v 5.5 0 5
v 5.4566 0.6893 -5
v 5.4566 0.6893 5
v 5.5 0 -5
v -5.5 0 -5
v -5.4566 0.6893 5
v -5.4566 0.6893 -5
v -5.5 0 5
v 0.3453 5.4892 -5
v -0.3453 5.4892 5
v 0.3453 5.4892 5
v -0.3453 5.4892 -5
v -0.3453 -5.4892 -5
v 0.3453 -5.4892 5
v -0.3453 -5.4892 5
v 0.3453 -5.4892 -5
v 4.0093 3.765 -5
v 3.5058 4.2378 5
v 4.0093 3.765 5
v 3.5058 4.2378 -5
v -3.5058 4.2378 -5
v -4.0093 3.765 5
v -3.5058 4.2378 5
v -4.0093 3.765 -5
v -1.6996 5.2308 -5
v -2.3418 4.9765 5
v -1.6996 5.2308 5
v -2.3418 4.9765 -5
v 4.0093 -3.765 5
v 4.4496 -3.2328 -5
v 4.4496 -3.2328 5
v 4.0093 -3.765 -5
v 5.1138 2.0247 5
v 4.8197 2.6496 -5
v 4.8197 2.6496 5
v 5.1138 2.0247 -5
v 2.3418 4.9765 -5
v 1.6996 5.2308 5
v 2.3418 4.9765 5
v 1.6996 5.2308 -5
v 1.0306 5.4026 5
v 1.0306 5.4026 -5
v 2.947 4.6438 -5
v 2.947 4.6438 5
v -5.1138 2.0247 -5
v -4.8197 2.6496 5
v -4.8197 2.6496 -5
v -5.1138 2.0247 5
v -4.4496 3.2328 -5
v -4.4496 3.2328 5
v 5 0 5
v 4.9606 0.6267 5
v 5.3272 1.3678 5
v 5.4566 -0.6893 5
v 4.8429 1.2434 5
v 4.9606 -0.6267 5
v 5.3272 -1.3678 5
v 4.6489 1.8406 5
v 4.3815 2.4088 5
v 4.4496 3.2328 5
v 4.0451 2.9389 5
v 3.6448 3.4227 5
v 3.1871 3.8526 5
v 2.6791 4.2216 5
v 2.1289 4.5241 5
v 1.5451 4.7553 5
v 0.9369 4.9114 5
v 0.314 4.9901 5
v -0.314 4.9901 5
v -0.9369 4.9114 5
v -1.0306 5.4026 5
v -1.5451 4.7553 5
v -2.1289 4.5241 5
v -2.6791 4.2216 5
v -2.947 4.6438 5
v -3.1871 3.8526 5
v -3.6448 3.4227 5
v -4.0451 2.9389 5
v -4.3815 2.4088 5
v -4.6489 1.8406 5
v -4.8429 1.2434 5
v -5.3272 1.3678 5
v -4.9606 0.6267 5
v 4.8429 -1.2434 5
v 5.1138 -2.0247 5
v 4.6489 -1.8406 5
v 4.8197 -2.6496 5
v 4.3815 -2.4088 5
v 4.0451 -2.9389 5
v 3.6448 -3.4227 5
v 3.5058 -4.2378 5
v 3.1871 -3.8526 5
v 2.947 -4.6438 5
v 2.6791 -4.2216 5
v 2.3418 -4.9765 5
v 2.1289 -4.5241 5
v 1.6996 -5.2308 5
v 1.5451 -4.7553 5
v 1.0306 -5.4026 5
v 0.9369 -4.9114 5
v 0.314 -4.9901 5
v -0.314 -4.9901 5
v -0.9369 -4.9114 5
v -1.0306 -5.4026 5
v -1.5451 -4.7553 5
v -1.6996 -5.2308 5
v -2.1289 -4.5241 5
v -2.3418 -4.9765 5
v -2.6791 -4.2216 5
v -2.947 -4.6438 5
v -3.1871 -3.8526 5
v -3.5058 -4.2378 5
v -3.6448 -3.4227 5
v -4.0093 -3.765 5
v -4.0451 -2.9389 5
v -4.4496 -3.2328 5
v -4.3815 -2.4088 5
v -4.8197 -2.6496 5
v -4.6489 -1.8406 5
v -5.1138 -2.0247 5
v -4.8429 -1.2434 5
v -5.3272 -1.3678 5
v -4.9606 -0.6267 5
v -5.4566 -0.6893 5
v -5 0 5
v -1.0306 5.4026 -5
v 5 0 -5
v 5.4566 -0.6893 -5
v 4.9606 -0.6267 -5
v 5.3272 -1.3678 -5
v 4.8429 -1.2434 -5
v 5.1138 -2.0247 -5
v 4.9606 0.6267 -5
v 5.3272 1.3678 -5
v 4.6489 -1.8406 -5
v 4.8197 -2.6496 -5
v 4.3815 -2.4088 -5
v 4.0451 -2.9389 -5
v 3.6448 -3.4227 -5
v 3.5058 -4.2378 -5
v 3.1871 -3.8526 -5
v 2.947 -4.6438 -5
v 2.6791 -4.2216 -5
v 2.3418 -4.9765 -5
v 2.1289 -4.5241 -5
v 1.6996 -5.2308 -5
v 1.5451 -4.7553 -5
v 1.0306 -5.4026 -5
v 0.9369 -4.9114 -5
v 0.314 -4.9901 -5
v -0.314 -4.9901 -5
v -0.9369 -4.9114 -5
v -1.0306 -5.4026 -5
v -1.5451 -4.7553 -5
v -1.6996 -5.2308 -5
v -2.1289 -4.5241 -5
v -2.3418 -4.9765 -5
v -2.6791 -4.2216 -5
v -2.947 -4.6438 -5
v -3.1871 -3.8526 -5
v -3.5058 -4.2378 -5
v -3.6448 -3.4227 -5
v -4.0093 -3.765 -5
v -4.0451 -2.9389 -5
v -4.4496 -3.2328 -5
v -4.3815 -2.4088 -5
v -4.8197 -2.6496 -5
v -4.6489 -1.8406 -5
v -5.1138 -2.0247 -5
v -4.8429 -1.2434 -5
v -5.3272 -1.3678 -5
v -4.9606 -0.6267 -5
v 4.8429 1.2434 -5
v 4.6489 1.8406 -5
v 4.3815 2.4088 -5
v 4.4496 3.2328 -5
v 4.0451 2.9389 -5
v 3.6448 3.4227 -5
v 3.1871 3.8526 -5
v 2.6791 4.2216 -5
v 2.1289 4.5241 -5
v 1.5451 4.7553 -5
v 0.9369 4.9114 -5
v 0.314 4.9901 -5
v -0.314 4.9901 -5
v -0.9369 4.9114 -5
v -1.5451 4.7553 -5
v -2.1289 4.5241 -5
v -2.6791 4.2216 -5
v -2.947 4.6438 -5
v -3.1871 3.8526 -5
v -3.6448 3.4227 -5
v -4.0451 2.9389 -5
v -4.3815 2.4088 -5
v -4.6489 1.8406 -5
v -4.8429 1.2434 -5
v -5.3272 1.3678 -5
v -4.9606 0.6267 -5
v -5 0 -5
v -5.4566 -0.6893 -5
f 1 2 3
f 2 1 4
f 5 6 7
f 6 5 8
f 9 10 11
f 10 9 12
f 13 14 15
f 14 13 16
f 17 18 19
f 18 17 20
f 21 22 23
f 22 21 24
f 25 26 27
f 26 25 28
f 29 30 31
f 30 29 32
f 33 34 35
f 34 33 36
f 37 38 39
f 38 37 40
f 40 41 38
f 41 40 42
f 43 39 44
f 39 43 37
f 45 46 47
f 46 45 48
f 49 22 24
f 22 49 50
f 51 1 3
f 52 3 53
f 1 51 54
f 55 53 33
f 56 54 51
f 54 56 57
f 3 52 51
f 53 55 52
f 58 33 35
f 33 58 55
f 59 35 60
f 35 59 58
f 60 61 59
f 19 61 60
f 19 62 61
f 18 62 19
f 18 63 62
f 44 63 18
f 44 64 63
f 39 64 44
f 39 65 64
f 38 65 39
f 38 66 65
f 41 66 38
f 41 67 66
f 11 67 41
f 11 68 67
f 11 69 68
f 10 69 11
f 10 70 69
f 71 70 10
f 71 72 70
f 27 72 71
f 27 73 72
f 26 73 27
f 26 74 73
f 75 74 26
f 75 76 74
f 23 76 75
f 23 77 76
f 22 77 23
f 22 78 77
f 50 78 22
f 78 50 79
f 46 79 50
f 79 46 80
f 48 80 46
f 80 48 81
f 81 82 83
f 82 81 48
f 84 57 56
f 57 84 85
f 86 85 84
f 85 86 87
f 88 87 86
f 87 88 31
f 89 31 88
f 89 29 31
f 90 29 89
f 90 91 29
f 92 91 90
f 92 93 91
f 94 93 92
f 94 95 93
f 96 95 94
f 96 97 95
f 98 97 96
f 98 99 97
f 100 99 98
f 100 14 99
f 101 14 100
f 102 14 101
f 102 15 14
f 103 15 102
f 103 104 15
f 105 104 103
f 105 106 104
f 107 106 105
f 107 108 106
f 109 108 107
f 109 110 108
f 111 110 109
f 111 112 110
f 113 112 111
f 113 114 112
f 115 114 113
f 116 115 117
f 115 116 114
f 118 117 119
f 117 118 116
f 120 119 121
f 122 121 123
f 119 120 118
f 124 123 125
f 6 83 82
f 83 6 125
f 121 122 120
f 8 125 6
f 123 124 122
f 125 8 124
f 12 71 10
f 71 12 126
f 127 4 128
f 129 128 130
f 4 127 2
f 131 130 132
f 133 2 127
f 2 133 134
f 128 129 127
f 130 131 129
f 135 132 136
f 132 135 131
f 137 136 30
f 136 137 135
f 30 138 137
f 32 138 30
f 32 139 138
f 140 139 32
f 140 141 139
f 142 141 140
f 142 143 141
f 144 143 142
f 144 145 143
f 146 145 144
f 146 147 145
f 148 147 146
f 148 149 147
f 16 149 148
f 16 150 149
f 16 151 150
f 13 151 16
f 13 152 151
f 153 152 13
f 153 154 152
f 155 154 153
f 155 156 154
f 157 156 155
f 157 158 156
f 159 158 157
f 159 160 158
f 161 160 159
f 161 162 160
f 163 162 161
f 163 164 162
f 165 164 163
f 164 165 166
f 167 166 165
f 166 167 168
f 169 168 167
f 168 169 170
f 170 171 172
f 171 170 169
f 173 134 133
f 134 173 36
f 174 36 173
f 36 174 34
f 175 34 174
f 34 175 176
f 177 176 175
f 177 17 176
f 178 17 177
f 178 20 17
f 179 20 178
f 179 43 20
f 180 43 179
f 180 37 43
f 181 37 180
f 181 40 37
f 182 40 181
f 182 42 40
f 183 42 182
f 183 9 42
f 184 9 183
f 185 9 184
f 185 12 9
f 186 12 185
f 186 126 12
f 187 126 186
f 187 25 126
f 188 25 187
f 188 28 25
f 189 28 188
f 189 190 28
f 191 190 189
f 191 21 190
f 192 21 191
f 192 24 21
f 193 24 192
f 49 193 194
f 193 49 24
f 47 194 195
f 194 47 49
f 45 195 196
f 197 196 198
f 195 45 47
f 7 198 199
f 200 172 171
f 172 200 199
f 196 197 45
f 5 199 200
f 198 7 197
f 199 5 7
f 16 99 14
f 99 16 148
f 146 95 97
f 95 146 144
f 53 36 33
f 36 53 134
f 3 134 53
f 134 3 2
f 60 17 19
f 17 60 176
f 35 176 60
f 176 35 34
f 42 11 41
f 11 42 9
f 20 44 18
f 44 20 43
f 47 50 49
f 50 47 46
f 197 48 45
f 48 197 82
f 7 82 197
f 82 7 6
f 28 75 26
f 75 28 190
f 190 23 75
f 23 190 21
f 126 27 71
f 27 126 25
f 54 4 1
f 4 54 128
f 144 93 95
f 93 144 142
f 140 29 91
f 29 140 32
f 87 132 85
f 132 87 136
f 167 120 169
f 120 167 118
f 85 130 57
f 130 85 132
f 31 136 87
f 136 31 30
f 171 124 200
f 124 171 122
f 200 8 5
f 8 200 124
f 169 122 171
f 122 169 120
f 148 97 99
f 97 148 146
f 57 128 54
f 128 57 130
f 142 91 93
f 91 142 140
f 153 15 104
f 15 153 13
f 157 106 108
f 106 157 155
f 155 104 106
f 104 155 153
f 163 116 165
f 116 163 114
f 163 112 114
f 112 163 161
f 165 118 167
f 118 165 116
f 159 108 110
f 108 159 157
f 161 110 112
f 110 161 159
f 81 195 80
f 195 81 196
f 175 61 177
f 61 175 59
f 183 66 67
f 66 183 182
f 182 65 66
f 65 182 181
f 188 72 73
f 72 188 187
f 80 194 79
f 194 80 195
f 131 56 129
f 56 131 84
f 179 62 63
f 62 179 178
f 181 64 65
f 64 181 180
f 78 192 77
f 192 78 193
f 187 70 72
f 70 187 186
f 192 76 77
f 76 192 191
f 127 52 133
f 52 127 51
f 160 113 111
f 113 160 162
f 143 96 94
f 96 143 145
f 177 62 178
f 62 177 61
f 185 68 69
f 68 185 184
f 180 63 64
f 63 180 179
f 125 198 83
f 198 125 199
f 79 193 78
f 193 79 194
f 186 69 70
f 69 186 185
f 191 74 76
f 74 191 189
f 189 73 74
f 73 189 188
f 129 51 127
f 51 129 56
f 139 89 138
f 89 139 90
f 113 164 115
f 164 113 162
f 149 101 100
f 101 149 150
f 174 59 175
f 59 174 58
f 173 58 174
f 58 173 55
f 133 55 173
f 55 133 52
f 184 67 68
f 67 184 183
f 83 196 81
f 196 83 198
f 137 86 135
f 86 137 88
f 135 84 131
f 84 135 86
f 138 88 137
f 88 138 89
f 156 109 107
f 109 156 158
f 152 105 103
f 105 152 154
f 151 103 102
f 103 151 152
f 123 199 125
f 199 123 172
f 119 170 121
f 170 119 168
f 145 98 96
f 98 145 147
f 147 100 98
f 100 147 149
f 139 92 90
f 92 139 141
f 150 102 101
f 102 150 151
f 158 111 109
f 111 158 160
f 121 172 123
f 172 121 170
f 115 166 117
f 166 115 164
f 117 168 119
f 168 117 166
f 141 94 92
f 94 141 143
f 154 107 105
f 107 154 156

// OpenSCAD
$fn = 50;


difference() {
	union() {
		translate(v = [0, 0, -5.0000000000]) {
			cylinder(h = 10, r = 5.5000000000);
		}
	}
	union() {
		translate(v = [0, 0, -100.0000000000]) {
			cylinder(h = 200, r = 5);
		}
	}
}
